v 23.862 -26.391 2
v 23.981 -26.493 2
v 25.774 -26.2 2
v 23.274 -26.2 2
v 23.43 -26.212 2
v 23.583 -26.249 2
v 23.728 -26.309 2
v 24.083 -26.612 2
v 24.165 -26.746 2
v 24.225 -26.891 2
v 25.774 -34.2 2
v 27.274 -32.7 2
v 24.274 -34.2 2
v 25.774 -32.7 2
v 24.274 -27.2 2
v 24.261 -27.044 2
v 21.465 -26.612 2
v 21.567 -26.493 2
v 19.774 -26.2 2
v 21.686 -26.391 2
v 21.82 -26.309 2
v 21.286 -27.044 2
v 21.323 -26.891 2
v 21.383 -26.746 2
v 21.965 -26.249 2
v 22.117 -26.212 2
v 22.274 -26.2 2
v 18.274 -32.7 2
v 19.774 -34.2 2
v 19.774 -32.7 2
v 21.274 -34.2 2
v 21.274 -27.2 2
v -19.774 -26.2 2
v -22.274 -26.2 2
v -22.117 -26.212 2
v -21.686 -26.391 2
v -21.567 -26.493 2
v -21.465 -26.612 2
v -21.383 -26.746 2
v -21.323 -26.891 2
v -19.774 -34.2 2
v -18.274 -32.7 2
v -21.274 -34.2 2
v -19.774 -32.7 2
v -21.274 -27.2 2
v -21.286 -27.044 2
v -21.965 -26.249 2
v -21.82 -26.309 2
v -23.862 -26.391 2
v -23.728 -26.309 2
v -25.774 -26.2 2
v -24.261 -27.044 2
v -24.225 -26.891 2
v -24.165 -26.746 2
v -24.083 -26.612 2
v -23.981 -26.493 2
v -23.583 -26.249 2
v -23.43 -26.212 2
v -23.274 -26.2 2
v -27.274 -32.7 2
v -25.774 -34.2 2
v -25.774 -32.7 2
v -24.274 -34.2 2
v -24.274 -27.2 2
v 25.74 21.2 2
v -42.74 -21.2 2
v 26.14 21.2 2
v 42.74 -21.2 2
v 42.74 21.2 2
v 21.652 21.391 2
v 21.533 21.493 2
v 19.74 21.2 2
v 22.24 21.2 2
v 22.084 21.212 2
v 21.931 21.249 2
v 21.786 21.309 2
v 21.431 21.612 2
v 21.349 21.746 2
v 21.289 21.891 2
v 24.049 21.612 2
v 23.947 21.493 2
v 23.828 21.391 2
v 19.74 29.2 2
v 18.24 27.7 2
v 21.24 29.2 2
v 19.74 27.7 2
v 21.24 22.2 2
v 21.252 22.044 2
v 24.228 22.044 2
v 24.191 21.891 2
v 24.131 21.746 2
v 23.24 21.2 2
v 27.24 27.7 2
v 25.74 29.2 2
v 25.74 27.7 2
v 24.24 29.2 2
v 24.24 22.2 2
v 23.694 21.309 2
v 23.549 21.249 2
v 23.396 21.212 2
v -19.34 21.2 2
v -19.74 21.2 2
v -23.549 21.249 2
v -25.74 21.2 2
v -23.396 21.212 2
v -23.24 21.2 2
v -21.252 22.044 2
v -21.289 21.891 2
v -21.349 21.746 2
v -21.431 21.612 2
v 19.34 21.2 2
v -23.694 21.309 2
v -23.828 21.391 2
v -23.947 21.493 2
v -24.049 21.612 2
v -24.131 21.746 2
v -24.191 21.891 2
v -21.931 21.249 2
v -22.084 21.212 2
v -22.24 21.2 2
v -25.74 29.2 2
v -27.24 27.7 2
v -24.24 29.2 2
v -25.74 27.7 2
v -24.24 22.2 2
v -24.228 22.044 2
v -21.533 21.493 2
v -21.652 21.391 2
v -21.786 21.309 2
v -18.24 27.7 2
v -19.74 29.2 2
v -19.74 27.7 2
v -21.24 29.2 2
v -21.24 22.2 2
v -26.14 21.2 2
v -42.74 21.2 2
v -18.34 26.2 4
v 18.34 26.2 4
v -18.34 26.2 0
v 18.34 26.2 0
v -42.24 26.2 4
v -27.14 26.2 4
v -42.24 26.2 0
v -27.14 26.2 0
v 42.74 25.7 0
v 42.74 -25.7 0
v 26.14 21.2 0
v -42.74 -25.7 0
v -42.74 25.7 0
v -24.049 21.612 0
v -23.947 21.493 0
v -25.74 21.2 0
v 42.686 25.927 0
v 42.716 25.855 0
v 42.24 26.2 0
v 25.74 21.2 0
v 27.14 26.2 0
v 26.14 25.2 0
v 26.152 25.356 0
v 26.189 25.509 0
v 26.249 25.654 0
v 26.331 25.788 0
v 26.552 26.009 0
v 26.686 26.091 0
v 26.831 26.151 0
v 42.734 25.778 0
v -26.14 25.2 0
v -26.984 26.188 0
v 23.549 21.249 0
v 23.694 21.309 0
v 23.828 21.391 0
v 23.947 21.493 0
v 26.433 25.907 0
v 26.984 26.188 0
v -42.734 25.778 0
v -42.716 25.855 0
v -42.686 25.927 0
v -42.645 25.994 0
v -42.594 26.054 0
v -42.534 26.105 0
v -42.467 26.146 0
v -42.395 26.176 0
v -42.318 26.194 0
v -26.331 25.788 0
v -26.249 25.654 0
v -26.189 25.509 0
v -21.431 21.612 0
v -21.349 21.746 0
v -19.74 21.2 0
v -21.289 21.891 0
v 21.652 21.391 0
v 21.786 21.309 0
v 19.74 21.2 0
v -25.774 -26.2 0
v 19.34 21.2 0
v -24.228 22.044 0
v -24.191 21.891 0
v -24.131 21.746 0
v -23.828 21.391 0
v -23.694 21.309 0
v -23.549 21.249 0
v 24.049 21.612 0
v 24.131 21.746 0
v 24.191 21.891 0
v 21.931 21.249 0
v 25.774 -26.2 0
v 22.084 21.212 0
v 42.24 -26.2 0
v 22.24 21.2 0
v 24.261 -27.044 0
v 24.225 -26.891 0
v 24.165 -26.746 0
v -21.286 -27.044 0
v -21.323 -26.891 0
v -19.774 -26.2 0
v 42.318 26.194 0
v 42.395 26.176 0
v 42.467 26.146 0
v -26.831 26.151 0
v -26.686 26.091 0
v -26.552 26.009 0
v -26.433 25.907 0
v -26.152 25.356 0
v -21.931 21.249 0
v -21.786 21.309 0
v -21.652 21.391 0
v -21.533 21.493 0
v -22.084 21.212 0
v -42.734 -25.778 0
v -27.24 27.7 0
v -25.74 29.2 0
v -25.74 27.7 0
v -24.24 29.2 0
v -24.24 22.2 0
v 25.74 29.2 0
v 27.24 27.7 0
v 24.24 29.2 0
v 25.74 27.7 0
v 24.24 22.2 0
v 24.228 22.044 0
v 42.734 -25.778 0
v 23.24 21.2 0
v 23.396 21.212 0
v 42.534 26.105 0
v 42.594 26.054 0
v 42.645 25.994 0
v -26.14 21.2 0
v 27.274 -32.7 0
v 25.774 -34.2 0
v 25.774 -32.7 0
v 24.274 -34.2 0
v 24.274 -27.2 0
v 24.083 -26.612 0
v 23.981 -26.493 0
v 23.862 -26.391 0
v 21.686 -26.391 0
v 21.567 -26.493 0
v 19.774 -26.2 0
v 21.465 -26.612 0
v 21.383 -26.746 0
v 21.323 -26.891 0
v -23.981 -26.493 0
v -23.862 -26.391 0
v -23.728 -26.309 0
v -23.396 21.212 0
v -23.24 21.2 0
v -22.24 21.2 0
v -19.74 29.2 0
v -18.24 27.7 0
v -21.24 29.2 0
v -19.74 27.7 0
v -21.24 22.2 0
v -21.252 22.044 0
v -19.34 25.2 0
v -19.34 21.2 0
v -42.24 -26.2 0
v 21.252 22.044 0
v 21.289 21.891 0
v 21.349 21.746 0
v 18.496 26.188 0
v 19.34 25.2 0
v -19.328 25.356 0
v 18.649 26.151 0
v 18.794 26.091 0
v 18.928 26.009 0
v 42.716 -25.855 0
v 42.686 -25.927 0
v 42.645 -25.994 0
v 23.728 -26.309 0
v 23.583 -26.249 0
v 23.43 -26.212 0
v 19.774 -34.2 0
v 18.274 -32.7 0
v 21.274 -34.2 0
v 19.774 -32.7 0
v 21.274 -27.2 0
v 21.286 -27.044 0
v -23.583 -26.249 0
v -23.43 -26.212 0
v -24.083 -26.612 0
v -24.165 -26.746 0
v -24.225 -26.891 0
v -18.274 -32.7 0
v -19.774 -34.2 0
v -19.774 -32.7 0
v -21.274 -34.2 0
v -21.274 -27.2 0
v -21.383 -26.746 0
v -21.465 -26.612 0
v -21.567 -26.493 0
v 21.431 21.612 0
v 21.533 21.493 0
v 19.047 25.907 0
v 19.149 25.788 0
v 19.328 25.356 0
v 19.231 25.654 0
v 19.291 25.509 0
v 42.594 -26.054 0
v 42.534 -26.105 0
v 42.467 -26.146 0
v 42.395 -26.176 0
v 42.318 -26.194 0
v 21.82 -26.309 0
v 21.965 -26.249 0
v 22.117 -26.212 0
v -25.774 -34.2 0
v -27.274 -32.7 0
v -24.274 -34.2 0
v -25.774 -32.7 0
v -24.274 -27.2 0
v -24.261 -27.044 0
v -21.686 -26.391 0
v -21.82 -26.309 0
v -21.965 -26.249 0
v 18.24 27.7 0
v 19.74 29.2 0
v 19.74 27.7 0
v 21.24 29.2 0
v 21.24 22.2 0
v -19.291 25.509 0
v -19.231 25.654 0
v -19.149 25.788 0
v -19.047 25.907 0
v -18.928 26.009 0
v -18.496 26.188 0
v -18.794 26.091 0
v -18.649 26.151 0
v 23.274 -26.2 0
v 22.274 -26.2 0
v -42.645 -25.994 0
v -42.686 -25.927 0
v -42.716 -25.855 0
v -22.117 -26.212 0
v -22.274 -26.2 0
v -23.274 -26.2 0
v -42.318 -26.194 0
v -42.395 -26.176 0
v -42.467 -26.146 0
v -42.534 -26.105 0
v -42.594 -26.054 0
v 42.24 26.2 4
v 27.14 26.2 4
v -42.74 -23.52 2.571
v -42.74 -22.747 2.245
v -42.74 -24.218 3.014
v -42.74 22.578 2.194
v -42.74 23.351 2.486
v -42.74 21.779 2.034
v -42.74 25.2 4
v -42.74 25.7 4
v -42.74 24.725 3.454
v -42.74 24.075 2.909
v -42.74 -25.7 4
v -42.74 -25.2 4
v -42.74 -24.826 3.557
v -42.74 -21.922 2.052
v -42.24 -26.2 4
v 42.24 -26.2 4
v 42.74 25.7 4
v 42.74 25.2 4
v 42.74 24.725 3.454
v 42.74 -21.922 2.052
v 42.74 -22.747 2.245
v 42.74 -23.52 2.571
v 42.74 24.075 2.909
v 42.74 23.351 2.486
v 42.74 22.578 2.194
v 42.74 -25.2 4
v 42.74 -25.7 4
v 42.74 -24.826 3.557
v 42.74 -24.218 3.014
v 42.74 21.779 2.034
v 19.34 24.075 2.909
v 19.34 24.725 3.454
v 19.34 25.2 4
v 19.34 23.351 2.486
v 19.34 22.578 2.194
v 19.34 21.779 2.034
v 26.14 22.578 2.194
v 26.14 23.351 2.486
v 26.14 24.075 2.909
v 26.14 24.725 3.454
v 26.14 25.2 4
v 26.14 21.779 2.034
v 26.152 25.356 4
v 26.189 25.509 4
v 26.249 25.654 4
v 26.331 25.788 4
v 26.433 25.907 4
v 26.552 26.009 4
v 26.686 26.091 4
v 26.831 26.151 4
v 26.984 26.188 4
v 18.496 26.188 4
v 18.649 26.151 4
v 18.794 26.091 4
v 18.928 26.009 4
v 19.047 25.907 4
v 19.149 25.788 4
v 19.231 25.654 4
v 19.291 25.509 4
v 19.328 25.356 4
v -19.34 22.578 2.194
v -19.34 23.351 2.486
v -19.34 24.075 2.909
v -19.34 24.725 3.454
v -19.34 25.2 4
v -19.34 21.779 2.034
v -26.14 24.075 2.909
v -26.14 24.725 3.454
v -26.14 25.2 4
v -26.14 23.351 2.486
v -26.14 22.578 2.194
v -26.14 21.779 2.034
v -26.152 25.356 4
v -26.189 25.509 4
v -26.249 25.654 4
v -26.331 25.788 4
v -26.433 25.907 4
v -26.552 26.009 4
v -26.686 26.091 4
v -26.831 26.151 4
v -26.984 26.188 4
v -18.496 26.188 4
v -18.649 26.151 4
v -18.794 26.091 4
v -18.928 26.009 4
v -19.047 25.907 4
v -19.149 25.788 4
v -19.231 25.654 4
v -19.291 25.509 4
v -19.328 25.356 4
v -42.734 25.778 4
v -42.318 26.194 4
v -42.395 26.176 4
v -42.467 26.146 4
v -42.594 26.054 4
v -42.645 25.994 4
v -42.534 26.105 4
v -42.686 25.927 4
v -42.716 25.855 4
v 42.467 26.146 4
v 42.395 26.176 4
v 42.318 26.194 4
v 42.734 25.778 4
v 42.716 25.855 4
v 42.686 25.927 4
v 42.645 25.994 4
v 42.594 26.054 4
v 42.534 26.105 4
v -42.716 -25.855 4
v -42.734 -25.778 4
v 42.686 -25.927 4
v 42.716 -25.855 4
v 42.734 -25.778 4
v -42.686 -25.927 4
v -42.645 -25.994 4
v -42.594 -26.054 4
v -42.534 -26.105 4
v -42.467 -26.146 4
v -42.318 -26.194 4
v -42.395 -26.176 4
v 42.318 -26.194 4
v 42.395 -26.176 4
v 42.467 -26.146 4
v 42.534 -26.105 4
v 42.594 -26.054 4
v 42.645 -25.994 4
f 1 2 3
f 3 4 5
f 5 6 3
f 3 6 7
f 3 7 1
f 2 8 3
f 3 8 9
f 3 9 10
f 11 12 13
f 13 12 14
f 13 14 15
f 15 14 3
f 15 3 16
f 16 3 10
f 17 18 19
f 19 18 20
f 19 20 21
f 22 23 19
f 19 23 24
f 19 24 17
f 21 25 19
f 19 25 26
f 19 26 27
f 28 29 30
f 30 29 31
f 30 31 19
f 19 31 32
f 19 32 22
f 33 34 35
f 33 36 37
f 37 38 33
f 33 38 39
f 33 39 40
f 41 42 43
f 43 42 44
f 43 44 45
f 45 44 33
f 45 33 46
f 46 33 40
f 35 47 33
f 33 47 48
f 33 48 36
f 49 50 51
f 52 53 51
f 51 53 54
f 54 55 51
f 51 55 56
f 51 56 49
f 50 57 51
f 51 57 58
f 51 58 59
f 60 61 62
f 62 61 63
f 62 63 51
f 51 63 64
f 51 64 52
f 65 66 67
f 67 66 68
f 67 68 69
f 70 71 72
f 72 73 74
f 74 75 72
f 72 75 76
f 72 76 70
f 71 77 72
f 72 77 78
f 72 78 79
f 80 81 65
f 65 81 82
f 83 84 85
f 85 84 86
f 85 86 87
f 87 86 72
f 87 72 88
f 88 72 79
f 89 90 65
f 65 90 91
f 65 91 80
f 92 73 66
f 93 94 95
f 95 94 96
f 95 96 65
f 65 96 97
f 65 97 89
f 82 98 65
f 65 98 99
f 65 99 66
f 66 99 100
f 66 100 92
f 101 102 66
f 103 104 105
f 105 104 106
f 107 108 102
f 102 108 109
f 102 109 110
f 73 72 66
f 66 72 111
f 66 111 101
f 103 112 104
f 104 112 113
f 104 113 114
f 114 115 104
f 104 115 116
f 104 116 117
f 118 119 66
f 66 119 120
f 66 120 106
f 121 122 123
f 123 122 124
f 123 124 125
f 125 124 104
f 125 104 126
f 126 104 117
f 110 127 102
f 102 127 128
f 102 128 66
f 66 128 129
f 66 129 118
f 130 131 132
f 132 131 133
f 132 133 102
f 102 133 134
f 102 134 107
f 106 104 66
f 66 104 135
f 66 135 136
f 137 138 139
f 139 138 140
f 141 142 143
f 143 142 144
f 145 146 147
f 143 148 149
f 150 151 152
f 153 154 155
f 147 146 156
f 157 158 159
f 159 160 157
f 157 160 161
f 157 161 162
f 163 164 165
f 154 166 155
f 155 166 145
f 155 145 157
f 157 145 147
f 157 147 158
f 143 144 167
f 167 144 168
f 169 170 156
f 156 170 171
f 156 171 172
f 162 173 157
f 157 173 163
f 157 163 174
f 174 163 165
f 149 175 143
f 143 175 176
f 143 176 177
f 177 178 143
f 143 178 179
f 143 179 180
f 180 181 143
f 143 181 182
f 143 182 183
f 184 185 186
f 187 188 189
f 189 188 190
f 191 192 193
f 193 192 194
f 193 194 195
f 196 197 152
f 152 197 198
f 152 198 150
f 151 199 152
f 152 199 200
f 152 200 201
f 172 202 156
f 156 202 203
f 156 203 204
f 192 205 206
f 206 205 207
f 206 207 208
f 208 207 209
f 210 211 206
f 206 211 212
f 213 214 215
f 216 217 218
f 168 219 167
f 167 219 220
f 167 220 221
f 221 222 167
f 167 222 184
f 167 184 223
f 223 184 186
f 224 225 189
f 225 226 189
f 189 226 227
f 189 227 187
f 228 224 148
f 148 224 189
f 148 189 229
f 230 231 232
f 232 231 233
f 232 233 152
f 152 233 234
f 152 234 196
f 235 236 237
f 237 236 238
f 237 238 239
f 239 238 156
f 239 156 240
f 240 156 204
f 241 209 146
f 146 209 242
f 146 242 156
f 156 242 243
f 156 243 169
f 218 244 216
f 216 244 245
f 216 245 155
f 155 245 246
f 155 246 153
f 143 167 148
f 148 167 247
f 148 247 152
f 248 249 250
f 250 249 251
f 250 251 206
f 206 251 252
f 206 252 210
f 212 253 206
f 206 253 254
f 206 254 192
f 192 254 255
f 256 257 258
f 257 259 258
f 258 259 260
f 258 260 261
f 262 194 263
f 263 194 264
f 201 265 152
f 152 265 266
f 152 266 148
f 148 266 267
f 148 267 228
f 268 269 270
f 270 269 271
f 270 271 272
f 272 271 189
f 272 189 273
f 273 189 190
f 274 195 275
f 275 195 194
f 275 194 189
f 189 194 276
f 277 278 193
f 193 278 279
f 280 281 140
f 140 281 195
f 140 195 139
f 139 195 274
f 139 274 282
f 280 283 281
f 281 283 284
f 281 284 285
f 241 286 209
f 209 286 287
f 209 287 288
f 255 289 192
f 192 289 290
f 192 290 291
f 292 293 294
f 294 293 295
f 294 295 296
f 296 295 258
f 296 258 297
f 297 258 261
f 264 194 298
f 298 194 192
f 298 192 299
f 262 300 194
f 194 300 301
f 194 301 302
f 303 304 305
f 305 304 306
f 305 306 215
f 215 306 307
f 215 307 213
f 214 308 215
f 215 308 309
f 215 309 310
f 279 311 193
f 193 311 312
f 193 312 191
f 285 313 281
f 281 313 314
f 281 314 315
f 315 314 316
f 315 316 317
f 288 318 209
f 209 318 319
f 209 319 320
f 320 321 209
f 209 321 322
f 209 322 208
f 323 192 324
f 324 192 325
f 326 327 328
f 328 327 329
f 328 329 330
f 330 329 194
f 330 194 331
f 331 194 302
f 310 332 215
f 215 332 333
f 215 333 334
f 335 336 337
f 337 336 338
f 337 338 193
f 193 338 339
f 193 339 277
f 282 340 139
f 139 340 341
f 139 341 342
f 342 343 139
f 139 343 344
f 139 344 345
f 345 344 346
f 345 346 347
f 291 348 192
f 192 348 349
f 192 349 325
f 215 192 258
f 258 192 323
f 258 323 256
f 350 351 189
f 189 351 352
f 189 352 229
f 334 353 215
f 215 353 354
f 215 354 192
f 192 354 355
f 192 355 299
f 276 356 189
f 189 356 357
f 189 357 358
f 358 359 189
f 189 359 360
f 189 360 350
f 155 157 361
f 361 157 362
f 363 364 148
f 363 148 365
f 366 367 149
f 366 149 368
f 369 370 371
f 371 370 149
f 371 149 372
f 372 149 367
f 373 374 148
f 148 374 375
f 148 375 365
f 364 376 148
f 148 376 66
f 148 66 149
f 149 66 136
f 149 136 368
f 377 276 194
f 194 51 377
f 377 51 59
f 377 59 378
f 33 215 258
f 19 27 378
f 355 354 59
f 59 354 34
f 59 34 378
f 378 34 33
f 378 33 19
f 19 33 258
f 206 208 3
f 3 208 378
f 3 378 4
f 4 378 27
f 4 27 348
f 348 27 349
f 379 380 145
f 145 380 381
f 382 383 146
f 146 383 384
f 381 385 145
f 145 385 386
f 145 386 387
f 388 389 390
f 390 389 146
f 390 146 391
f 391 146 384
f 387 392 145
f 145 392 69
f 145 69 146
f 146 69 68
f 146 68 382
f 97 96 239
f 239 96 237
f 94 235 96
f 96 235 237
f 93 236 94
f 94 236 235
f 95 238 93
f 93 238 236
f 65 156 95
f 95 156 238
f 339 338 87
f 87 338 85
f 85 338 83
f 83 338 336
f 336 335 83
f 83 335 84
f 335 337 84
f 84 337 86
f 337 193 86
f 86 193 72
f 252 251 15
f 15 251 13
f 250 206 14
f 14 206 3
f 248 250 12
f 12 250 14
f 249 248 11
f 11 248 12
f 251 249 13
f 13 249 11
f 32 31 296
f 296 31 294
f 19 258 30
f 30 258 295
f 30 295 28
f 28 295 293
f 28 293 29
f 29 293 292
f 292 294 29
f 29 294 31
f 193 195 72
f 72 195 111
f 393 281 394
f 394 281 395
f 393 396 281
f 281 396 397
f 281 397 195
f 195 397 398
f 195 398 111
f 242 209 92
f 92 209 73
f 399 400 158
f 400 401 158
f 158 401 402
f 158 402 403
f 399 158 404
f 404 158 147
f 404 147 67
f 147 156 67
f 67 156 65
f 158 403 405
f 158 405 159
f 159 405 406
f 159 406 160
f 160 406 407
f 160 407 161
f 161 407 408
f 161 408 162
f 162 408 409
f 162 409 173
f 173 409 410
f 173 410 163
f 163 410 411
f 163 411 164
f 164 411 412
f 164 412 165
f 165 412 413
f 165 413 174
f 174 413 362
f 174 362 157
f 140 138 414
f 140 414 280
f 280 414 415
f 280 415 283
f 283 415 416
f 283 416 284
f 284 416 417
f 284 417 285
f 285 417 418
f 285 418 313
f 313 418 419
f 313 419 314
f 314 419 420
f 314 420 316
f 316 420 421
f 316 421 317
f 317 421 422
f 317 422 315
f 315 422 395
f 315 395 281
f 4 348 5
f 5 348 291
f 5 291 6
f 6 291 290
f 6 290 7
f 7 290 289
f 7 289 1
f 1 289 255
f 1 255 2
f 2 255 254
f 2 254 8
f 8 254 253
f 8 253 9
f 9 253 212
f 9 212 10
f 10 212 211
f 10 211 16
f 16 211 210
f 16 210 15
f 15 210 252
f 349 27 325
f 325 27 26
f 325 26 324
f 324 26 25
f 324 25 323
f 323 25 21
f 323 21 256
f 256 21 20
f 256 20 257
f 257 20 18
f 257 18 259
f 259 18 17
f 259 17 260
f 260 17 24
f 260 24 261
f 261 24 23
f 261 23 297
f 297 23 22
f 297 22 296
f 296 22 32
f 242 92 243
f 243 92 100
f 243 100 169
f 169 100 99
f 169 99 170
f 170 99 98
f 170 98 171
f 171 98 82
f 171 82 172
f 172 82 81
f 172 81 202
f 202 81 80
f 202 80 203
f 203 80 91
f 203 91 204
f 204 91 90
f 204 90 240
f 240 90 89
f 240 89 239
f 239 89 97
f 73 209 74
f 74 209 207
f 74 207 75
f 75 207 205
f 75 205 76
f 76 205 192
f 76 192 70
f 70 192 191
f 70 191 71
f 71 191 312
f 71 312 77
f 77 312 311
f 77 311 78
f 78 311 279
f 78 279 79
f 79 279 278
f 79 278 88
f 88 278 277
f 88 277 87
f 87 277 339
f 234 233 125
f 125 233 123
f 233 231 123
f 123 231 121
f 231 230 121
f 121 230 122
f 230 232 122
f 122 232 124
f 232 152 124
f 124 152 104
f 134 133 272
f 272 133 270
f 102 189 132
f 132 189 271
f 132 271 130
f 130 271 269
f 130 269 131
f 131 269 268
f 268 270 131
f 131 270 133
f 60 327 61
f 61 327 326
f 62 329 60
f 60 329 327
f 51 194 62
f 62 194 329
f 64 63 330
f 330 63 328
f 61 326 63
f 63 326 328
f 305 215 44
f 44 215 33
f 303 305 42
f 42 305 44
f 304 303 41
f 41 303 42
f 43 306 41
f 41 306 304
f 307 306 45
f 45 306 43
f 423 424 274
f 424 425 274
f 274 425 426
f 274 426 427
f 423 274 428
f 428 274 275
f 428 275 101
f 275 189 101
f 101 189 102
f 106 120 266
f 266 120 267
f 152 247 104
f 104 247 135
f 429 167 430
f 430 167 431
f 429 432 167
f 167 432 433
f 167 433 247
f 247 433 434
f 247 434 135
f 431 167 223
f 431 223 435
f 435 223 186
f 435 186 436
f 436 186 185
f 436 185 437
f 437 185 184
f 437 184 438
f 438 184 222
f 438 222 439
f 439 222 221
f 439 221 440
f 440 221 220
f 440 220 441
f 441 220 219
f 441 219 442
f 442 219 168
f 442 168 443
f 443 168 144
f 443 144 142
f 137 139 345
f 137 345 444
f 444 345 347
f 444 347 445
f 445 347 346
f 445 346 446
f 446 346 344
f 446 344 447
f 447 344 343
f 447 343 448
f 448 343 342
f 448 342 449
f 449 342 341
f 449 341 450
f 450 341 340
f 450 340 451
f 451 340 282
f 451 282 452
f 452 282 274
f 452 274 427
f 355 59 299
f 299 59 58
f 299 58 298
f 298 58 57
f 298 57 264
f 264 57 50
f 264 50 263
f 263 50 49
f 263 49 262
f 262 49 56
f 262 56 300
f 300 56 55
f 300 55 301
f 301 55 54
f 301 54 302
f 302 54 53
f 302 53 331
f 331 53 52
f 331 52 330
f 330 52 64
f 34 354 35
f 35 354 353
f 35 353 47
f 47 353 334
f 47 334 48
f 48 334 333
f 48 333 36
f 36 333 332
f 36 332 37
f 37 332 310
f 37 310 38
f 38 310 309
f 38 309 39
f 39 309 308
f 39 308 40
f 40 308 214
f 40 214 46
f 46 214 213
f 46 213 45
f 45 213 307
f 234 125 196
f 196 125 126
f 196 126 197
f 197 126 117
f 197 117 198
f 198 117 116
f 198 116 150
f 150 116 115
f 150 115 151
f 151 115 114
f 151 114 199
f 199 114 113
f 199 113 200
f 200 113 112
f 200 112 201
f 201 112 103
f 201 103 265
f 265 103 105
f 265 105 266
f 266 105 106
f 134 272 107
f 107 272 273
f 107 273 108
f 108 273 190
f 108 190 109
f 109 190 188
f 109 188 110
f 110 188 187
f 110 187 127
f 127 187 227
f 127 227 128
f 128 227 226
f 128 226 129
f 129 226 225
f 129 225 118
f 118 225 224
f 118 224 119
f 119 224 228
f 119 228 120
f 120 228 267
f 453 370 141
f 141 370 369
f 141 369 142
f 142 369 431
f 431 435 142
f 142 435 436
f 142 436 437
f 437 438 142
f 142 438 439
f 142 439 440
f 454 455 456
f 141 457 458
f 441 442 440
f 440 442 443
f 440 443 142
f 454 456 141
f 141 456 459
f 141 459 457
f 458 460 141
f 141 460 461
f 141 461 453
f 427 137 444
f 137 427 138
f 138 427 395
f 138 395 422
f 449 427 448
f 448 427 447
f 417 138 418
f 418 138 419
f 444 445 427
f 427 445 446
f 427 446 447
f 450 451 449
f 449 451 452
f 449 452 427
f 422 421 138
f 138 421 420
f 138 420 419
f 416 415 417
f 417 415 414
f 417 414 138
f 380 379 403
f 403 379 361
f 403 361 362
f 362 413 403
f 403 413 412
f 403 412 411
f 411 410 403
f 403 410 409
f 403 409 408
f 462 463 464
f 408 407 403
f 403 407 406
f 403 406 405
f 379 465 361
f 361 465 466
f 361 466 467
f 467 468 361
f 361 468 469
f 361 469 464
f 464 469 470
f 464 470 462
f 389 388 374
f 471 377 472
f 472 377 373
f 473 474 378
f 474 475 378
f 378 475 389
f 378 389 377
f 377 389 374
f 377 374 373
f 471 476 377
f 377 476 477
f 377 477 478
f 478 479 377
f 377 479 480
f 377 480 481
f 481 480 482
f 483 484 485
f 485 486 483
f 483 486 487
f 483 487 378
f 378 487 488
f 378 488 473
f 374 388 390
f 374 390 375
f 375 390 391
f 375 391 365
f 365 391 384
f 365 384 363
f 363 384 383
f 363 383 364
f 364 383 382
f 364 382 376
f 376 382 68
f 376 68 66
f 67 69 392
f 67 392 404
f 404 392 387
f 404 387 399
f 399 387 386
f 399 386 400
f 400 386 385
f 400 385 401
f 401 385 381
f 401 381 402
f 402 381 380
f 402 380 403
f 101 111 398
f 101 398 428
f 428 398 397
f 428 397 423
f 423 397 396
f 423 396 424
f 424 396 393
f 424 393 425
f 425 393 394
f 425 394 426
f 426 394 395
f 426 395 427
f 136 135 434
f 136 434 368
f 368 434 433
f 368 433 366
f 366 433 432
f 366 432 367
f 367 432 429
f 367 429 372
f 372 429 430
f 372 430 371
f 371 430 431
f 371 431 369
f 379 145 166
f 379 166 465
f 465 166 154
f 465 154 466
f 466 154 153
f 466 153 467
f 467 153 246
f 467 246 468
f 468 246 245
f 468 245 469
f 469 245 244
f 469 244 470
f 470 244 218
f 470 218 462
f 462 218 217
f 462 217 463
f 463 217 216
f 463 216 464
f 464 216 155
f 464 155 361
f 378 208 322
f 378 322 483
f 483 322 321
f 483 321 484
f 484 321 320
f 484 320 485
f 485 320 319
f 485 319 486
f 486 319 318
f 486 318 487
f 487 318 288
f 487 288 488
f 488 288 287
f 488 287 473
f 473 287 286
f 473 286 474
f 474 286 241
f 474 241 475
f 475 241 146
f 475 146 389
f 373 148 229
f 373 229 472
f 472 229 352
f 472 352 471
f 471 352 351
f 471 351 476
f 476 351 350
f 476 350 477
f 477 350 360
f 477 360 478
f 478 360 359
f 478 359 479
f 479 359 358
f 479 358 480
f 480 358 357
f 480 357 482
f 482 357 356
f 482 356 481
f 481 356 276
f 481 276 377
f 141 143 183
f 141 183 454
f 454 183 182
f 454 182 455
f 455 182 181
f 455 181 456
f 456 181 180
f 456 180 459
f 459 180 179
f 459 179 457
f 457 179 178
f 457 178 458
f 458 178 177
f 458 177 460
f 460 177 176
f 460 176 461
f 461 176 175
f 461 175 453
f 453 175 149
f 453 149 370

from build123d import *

# Parameters (mm, degrees)
SKETCH1_W            = 85.48
SKETCH1_H            = 52.4
BOSS_EXTRUDE1_DEPTH  = 2
BOSS_EXTRUDE2_DEPTH  = 2
SKETCH7_W            = 3
SKETCH7_H            = 5
SKETCH7_W_2          = 0.4
CUT_EXTRUDE2_DEPTH   = 55.775428798
FILLET4_R            = 1
FILLET4_OF_MIRROR2_R = 1
SKETCH8_W            = 85.48
SKETCH8_H            = 1
BOSS_EXTRUDE4_DEPTH  = 2
FILLET5_START        = -42.74
FILLET5_DEPTH        = 85.48
FILLET5_START_2      = -19.34
FILLET5_2_DEPTH      = 38.68
FILLET5_3_DEPTH      = 16.6
FILLET5_START_3      = 26.14
FILLET5_4_DEPTH      = 16.6
FILLET6_R            = 0.5


with BuildPart() as part:
    # Sketch1 → Boss-Extrude1 (new body)
    with BuildSketch(Plane.XY):
        Rectangle(SKETCH1_W, SKETCH1_H)
    extrude(amount=BOSS_EXTRUDE1_DEPTH)

    # Sketch2 → Boss-Extrude2 (add)
    with BuildSketch(Plane(origin=(0, 0, 0), x_dir=(-1, 0, 0), z_dir=(0, 0, -1))):
        Polygon((-27.24, 27.7), (-25.74, 27.7), (-25.74, 26.2), (-24.24, 26.2), (-24.24, 29.2), (-25.74, 29.2), align=None)
        Polygon((-19.74, 29.2), (-21.24, 29.2), (-21.24, 26.2), (-19.74, 26.2), (-19.74, 27.7), (-18.24, 27.7), align=None)
        Polygon((-25.773724333, -26.2), (-25.773724333, -32.7), (-27.273724333, -32.7), (-25.773724333, -34.2), (-24.273724333, -34.2), (-24.273724333, -26.2), align=None)
        Polygon((-21.273724333, -26.2), (-21.273724333, -34.2), (-19.773724333, -34.2), (-18.273724333, -32.7), (-19.773724333, -32.7), (-19.773724333, -26.2), align=None)
    boss_extrude2 = extrude(amount=-BOSS_EXTRUDE2_DEPTH)

    # Sketch7 → Cut-Extrude2 (cut, through all)
    with BuildSketch(Plane.XY.offset(2)):
        with Locations((22.74, 23.7)):
            Rectangle(SKETCH7_W, SKETCH7_H)
        with Locations((19.54, 23.7)):
            Rectangle(SKETCH7_W_2, SKETCH7_H)
        with Locations((25.94, 23.7)):
            Rectangle(SKETCH7_W_2, SKETCH7_H)
    cut_extrude2 = extrude(amount=-CUT_EXTRUDE2_DEPTH, mode=Mode.SUBTRACT)

    # Fillet4
    fillet4_edges = [part.edges().sort_by_distance(p)[0] for p in [
        (19.34, 26.2, 1),
        (21.24, 21.2, 1),
        (24.24, 21.2, 1),
        (24.273724333, -26.2, 1),
        (21.273724333, -26.2, 1),
        (26.14, 26.2, 1),
    ]]
    fillet(fillet4_edges, radius=FILLET4_R)

    # Mirror2: Boss-Extrude2, Cut-Extrude2 across plane
    add(boss_extrude2.mirror(Plane(origin=(0, 0, 0), x_dir=(0, 0, 1), z_dir=(1, 0, 0))))
    add(cut_extrude2.mirror(Plane(origin=(0, 0, 0), x_dir=(0, 0, 1), z_dir=(1, 0, 0))), mode=Mode.SUBTRACT)

    # Fillet4 of Mirror2
    fillet4_of_mirror2_edges = [part.edges().sort_by_distance(p)[0] for p in [
        (-19.34, 26.2, 1),
        (-21.24, 21.2, 1),
        (-24.24, 21.2, 1),
        (-24.273724333, -26.2, 1),
        (-21.273724333, -26.2, 1),
        (-26.14, 26.2, 1),
    ]]
    fillet(fillet4_of_mirror2_edges, radius=FILLET4_OF_MIRROR2_R)

    # Sketch8 → Boss-Extrude4 (add)
    with BuildSketch(Plane.XY.offset(2)):
        with BuildLine():
            Line((-42.74, 26.2), (-42.74, 25.2))
            Line((-42.74, 25.2), (-26.14, 25.2))
            ThreePointArc((-26.14, 25.2), (-26.432893219, 25.907106781), (-27.14, 26.2))
            Line((-27.14, 26.2), (-42.74, 26.2))
        make_face()
        with BuildLine():
            ThreePointArc((-18.34, 26.2), (-19.047106781, 25.907106781), (-19.34, 25.2))
            Line((-19.34, 25.2), (19.34, 25.2))
            ThreePointArc((19.34, 25.2), (19.047106781, 25.907106781), (18.34, 26.2))
            Line((18.34, 26.2), (-18.34, 26.2))
        make_face()
        with BuildLine():
            Line((26.14, 25.2), (42.74, 25.2))
            Line((42.74, 25.2), (42.74, 26.2))
            Line((42.74, 26.2), (27.14, 26.2))
            ThreePointArc((27.14, 26.2), (26.432893219, 25.907106781), (26.14, 25.2))
        make_face()
        with Locations((0, -25.7)):
            Rectangle(SKETCH8_W, SKETCH8_H)
    extrude(amount=BOSS_EXTRUDE4_DEPTH)

    # Fillet5: read off the stored shape, not the designer's step
    # Fillet5 outline → Fillet5 (add)
    with BuildSketch(Plane.YZ.offset(FILLET5_START)):
        with BuildLine():
            Line((-25.2, 2), (-21.2, 2))
            add(Edge.make_bspline(
                [(-21.2, 2), (-23.7, 2), (-25.2, 4)],
                knots=[0, 0, 0, 1, 1, 1], degree=2, weights=[1, 0.894427191, 1]))
            Line((-25.2, 4), (-25.2, 2))
        make_face()
    extrude(amount=FILLET5_DEPTH)

    # Fillet5 2 outline → Fillet5 2 (add)
    with BuildSketch(Plane.YZ.offset(FILLET5_START_2)):
        with BuildLine():
            add(Edge.make_bspline(
                [(25.2, 4), (23.7, 2), (21.2, 2)],
                knots=[0, 0, 0, 1, 1, 1], degree=2, weights=[1, 0.894427191, 1]))
            Line((21.2, 2), (25.2, 2))
            Line((25.2, 2), (25.2, 4))
        make_face()
    extrude(amount=FILLET5_2_DEPTH)

    # Fillet5 3 outline → Fillet5 3 (add)
    with BuildSketch(Plane.YZ.offset(FILLET5_START)):
        with BuildLine():
            add(Edge.make_bspline(
                [(25.2, 4), (23.7, 2), (21.2, 2)],
                knots=[0, 0, 0, 1, 1, 1], degree=2, weights=[1, 0.894427191, 1]))
            Line((21.2, 2), (25.2, 2))
            Line((25.2, 2), (25.2, 4))
        make_face()
    extrude(amount=FILLET5_3_DEPTH)

    # Fillet5 4 outline → Fillet5 4 (add)
    with BuildSketch(Plane.YZ.offset(FILLET5_START_3)):
        with BuildLine():
            add(Edge.make_bspline(
                [(25.2, 4), (23.7, 2), (21.2, 2)],
                knots=[0, 0, 0, 1, 1, 1], degree=2, weights=[1, 0.894427191, 1]))
            Line((21.2, 2), (25.2, 2))
            Line((25.2, 2), (25.2, 4))
        make_face()
    extrude(amount=FILLET5_4_DEPTH)

    # Fillet6
    fillet6_edges = [part.edges().sort_by_distance(p)[0] for p in [
        (-42.74, 26.2, 2),
        (42.74, 26.2, 2),
        (42.74, -26.2, 2),
        (-42.74, -26.2, 2),
    ]]
    fillet(fillet6_edges, radius=FILLET6_R)


solid = part.part
